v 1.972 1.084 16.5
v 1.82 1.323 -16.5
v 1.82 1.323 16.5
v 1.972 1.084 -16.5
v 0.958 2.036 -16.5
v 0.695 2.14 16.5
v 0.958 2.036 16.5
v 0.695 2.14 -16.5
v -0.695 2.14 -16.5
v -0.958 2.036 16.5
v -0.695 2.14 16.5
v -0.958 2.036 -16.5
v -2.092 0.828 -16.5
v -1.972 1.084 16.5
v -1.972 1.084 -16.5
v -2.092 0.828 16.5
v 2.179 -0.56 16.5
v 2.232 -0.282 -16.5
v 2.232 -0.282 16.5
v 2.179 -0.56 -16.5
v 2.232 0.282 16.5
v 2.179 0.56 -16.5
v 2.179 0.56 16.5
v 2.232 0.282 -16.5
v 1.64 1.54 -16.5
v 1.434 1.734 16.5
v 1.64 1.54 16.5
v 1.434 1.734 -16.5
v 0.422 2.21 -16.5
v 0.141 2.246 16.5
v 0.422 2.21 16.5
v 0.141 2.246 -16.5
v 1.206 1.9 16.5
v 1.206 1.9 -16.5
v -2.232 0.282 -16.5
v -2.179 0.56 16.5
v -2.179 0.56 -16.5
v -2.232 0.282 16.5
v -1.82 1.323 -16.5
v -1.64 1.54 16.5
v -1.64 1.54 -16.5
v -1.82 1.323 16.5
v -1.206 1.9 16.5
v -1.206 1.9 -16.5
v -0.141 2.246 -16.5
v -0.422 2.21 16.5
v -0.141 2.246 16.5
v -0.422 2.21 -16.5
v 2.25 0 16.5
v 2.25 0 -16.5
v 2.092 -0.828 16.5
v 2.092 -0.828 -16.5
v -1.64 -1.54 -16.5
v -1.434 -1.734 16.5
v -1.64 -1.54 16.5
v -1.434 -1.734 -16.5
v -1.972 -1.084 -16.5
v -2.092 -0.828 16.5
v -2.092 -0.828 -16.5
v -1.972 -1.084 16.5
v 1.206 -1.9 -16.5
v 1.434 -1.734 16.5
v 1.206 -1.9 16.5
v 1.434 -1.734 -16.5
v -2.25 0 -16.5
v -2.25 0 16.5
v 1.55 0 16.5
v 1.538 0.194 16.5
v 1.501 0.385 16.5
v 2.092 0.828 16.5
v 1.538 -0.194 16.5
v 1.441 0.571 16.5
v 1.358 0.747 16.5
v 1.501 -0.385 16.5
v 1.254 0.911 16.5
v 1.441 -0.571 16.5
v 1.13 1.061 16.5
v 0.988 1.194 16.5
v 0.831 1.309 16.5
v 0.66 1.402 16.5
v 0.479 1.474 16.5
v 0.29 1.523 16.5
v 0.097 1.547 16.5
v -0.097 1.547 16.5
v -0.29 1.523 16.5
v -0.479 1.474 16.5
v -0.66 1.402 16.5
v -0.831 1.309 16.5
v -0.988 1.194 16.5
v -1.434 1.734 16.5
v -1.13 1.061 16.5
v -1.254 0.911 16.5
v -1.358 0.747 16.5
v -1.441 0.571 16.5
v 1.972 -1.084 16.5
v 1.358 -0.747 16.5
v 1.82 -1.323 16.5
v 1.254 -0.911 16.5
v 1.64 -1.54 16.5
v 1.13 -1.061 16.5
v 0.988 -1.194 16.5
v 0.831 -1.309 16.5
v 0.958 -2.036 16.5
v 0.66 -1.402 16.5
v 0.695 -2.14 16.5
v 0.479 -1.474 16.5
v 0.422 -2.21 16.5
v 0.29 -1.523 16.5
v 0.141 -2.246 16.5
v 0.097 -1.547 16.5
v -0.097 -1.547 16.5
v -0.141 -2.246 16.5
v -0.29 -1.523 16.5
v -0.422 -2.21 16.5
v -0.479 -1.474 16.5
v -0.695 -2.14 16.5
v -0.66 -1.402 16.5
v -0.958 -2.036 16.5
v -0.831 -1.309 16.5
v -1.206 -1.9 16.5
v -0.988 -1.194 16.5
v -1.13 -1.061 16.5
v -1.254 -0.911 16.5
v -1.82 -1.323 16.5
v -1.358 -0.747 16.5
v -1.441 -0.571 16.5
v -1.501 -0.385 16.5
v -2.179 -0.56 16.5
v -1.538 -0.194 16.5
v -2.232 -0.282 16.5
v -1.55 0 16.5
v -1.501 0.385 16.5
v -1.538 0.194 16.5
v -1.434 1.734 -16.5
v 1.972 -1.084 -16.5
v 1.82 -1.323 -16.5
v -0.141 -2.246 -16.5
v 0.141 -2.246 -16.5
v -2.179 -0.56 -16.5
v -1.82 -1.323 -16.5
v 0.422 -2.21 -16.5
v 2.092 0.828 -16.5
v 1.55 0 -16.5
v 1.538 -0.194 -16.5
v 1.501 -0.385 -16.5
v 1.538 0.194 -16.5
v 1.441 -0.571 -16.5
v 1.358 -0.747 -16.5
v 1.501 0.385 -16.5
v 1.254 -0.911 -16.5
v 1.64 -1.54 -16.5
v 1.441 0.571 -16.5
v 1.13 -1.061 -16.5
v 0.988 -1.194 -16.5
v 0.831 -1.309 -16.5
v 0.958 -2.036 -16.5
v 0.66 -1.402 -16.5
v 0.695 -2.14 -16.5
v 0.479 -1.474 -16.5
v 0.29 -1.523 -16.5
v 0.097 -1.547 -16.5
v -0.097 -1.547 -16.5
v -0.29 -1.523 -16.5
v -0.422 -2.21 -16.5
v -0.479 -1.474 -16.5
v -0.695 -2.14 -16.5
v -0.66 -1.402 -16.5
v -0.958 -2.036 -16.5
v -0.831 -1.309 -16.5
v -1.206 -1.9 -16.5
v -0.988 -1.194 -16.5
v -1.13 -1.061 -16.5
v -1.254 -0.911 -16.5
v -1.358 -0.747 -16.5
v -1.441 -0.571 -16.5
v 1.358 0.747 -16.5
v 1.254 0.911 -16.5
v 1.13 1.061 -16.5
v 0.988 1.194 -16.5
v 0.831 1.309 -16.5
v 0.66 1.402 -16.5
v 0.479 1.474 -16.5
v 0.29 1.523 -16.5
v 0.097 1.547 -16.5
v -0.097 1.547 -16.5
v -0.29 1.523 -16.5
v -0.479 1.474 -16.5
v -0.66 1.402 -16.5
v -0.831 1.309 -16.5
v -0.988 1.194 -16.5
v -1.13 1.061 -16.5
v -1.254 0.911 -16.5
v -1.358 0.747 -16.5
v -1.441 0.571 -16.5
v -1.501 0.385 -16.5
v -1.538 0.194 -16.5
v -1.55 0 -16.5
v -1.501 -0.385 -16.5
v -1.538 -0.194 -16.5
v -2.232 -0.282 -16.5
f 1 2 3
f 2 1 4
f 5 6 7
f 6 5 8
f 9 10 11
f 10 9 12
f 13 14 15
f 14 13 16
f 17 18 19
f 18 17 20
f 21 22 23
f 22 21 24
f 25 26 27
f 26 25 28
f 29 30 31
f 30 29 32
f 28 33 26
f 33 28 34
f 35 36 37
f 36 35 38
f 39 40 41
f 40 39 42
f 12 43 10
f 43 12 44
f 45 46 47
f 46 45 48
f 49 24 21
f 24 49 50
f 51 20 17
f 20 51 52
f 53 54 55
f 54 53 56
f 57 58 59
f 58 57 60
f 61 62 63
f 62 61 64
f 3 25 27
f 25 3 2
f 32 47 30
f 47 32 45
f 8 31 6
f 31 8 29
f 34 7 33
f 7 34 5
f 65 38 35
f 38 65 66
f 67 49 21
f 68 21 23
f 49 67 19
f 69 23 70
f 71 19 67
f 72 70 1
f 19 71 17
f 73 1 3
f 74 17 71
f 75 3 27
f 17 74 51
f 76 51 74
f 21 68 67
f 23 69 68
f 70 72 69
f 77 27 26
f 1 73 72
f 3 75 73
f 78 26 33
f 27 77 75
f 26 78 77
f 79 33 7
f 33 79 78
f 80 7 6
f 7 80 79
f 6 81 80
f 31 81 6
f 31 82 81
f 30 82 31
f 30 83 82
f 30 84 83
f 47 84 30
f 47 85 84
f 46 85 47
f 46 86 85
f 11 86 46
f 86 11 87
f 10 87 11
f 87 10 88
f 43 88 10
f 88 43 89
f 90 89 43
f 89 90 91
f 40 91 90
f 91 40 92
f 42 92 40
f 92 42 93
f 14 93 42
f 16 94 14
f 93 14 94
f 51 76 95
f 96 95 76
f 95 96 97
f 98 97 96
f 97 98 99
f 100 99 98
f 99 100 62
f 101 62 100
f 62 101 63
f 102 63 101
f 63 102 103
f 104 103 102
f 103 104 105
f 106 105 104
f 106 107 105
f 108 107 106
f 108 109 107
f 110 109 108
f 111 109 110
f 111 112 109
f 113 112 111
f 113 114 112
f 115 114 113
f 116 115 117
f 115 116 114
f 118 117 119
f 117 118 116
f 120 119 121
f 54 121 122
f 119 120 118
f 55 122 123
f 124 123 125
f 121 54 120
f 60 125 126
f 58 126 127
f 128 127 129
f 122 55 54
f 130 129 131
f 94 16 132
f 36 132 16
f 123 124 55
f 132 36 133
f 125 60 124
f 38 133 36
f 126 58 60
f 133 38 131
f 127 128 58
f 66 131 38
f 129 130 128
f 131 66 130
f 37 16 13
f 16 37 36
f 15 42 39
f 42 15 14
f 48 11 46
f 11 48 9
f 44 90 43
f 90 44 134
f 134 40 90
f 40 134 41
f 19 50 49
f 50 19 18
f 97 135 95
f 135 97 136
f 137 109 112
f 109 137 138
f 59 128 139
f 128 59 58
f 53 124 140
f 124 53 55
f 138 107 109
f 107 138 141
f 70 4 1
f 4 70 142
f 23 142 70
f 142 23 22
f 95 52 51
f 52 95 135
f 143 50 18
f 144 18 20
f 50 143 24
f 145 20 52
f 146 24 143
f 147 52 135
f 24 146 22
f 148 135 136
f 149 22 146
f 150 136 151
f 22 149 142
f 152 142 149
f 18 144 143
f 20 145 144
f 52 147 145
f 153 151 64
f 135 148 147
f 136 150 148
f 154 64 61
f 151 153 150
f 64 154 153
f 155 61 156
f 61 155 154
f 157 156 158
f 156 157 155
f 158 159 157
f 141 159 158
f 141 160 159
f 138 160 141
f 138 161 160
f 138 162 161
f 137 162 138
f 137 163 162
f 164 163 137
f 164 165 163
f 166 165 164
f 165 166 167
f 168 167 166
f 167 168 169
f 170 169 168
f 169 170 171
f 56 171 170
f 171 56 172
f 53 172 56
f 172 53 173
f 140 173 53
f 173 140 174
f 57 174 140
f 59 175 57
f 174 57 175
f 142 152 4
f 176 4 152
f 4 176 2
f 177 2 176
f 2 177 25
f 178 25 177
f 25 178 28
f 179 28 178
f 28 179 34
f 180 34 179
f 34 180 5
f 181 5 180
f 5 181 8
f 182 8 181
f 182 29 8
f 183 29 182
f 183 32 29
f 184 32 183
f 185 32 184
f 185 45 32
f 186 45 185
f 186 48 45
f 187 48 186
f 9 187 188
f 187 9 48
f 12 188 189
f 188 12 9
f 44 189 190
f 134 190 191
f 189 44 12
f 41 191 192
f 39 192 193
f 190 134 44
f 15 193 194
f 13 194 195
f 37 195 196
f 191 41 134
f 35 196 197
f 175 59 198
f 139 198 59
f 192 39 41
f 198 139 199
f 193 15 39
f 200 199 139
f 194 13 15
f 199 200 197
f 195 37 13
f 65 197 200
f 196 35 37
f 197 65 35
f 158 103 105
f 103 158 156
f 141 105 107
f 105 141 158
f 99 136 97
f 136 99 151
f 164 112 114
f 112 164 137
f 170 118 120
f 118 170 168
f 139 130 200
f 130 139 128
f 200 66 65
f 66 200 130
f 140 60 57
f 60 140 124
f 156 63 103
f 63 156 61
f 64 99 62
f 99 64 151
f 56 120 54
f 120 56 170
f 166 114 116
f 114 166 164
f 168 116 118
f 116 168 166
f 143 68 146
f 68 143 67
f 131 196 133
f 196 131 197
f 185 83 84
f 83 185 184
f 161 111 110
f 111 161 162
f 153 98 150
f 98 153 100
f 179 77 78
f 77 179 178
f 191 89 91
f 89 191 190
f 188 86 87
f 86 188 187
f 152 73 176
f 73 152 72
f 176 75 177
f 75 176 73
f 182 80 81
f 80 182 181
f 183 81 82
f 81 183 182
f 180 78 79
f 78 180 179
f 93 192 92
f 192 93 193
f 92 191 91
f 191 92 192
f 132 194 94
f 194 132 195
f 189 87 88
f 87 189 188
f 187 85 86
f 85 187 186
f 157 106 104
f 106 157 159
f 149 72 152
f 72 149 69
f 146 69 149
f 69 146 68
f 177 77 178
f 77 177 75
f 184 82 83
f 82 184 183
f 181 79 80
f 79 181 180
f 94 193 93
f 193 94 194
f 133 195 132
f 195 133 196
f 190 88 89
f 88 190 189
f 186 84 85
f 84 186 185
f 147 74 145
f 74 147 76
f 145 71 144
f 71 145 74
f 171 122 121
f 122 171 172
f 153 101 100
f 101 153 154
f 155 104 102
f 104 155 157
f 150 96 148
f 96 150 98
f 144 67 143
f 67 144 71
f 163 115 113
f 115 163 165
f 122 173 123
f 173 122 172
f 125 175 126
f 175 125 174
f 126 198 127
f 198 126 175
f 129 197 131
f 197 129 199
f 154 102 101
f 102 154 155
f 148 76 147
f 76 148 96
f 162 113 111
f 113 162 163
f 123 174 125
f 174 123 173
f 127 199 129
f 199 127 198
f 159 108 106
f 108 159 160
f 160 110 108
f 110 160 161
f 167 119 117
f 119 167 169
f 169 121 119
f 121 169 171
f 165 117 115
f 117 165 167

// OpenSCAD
$fn = 50;


difference() {
	union() {
		translate(v = [0, 0, -16.5000000000]) {
			cylinder(h = 33, r = 2.2500000000);
		}
	}
	union() {
		translate(v = [0, 0, -100.0000000000]) {
			cylinder(h = 200, r = 1.5500000000);
		}
	}
}
